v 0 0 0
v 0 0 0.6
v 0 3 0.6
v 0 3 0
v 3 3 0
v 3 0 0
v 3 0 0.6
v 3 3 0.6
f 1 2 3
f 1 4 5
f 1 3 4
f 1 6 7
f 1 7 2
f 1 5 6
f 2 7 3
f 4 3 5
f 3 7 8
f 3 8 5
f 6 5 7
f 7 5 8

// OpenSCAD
/* Warning, this is a very basic generator with a lot of approximation 
input data : [WQFN, QAA, 3x3x0.6mm, 20, , A, C04-01013A]
generated by com.zoubworld.electronics.cad.model3d.Basic
Date : Sun Feb 15 10:50:49 CET 2026
*/

//body
color("black")
translate([0,0,0])
cube([3.0,3.0,0.6], center=false);
